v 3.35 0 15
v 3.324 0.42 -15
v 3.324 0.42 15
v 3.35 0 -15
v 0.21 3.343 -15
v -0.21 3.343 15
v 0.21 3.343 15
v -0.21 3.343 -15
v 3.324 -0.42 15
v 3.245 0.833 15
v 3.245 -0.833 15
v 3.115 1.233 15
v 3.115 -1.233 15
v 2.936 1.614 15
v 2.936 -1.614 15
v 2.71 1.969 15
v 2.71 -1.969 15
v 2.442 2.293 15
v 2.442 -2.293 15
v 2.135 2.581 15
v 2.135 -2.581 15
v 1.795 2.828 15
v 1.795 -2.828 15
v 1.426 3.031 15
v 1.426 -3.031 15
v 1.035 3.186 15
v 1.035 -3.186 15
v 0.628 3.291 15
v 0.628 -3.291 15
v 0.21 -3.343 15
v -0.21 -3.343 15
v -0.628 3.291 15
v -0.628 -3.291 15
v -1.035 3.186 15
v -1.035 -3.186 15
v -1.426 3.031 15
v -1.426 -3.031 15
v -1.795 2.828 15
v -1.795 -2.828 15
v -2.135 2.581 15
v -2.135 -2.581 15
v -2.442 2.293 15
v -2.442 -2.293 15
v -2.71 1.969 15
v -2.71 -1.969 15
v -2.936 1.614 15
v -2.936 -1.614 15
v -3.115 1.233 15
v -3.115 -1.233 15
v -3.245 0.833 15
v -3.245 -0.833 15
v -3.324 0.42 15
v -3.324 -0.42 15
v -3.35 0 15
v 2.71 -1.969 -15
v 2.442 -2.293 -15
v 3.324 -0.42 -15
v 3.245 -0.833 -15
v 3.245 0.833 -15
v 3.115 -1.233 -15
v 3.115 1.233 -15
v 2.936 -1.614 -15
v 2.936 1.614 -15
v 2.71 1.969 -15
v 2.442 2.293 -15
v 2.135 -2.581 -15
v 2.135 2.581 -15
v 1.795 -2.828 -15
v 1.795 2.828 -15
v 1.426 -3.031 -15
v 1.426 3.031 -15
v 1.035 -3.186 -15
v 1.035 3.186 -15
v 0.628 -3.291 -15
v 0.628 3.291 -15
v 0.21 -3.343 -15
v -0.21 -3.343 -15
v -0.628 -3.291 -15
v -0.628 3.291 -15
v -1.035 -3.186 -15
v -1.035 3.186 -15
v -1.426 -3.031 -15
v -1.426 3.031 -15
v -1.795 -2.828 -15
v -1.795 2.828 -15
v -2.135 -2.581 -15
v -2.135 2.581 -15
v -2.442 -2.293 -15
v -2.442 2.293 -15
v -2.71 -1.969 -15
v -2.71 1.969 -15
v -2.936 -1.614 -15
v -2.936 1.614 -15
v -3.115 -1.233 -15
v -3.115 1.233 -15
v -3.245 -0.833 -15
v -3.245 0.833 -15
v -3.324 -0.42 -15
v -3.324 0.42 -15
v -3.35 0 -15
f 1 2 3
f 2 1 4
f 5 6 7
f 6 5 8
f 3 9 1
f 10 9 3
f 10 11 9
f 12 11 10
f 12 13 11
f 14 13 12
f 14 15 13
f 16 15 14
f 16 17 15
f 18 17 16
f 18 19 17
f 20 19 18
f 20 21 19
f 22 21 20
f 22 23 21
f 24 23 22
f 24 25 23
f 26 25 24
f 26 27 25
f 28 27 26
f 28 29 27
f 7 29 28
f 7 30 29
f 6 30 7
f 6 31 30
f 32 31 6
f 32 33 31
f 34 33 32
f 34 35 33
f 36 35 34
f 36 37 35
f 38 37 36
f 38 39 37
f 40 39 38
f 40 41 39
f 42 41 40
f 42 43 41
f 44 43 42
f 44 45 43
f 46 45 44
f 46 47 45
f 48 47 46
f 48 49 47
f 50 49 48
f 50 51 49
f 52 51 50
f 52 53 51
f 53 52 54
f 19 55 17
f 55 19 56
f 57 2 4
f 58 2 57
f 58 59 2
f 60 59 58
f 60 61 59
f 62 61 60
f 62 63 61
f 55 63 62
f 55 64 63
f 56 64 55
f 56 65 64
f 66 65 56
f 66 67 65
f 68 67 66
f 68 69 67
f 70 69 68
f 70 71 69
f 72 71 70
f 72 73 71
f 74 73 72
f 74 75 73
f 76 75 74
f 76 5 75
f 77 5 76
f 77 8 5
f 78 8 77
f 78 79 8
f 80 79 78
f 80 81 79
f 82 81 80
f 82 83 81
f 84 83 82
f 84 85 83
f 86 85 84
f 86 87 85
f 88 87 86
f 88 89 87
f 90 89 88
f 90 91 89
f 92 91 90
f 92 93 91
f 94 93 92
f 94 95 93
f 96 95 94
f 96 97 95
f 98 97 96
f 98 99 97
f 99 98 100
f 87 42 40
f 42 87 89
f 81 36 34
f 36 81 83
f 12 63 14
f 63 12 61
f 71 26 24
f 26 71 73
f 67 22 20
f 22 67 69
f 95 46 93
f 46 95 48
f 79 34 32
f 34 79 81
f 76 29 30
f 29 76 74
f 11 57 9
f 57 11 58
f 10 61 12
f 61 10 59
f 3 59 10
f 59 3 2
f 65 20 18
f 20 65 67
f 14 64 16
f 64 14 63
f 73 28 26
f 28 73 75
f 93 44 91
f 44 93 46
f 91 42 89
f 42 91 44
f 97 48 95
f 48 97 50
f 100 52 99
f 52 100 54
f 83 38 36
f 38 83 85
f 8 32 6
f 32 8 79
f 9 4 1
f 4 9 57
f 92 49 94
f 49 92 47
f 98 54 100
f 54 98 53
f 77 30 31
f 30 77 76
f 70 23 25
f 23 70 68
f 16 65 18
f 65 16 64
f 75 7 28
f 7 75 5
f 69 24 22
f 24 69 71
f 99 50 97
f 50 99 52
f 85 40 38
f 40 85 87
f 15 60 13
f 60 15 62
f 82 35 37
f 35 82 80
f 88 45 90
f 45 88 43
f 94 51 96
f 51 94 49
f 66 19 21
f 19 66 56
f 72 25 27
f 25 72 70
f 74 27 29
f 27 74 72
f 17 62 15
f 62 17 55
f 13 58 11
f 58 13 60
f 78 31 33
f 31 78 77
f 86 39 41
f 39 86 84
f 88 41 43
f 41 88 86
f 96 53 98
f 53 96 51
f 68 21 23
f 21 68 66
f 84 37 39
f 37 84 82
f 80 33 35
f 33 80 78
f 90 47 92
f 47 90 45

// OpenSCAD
$fn = 50;


difference() {
	union() {
		translate(v = [0, 0, -15.0000000000]) {
			cylinder(h = 30, r = 3.3500000000);
		}
	}
	union() {
		translate(v = [0, 0, -100.0000000000]) {
			cylinder(h = 200, r = 0);
		}
	}
}
